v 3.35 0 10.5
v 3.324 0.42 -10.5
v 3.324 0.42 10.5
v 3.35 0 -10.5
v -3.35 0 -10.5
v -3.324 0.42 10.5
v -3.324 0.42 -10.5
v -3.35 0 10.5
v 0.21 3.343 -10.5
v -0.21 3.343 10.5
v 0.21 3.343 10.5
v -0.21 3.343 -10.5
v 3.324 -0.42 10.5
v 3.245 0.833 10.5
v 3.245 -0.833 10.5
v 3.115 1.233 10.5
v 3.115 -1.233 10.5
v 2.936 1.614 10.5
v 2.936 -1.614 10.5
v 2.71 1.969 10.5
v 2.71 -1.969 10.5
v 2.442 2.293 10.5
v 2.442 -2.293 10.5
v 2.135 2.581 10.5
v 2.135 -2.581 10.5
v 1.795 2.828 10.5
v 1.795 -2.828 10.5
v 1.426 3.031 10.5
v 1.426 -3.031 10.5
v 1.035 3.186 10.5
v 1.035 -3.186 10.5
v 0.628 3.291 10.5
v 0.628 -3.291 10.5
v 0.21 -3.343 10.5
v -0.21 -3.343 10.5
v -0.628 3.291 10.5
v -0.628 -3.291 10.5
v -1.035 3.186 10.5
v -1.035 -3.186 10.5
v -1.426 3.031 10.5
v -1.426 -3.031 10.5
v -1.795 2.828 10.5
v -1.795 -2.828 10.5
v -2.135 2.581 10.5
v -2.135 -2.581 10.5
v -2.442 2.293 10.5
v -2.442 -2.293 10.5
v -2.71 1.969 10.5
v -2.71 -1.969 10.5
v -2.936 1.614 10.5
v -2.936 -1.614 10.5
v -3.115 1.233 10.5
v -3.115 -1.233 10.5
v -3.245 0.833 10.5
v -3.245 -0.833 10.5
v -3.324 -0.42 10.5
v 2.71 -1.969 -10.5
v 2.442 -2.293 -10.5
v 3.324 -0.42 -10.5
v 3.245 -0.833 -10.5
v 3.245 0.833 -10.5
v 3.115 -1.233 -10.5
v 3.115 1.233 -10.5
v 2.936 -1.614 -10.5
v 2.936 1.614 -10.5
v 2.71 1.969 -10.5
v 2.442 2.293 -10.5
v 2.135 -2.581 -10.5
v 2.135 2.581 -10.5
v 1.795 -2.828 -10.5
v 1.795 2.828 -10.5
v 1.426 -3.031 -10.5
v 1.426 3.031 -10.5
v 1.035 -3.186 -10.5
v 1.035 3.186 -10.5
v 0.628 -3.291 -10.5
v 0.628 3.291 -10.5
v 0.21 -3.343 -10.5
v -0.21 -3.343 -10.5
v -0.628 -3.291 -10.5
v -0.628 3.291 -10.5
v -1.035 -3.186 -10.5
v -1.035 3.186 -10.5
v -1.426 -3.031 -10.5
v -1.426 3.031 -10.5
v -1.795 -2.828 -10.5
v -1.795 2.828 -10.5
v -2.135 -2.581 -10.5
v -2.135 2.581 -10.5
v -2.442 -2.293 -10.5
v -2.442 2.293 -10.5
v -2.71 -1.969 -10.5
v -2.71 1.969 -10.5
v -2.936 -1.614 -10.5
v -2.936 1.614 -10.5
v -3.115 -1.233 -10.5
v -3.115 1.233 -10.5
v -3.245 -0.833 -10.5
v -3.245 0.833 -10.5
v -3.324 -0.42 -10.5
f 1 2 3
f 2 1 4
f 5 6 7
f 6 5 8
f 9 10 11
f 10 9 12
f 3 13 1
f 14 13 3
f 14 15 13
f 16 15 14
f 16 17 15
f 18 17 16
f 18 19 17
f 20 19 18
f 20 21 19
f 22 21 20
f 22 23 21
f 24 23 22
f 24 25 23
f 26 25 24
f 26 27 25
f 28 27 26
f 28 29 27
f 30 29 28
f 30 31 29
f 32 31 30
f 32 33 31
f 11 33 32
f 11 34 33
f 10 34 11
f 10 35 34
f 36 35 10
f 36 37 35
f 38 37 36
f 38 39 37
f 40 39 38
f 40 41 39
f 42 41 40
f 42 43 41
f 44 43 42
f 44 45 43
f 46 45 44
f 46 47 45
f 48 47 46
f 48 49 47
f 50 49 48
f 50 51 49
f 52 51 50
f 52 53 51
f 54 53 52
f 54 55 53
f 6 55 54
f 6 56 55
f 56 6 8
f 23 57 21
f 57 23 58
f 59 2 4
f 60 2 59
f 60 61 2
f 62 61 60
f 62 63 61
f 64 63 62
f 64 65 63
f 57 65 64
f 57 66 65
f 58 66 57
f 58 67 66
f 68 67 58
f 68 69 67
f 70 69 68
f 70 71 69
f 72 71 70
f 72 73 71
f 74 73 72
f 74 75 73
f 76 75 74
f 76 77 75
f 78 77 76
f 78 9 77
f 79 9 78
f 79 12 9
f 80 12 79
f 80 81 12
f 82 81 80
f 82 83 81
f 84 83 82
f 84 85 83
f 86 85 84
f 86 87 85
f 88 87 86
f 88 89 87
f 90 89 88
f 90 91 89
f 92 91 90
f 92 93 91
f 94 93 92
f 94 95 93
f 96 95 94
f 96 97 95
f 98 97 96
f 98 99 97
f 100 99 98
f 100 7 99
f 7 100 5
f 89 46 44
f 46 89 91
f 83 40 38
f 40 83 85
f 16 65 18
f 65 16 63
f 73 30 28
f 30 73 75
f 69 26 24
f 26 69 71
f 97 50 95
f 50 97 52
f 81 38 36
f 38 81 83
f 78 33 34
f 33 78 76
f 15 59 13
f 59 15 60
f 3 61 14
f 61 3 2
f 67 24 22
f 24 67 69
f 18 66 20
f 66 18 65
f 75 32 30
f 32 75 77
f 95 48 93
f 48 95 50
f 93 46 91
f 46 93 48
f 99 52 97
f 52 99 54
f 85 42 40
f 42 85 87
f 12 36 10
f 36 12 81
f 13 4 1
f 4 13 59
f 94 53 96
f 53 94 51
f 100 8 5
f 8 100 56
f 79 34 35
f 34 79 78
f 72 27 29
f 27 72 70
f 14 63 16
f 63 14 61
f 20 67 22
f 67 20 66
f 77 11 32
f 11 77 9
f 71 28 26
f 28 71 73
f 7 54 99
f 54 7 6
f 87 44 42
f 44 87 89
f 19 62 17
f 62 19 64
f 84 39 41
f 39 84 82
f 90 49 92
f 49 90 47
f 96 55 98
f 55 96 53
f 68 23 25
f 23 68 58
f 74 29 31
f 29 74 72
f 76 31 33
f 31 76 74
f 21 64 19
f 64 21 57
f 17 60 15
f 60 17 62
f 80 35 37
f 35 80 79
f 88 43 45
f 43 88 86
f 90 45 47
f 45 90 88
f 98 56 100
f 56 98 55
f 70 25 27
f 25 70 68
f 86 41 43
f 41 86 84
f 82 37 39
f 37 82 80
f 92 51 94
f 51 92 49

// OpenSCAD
$fn = 50;


difference() {
	union() {
		translate(v = [0, 0, -10.5000000000]) {
			cylinder(h = 21, r = 3.3500000000);
		}
	}
	union() {
		translate(v = [0, 0, -100.0000000000]) {
			cylinder(h = 200, r = 0);
		}
	}
}
